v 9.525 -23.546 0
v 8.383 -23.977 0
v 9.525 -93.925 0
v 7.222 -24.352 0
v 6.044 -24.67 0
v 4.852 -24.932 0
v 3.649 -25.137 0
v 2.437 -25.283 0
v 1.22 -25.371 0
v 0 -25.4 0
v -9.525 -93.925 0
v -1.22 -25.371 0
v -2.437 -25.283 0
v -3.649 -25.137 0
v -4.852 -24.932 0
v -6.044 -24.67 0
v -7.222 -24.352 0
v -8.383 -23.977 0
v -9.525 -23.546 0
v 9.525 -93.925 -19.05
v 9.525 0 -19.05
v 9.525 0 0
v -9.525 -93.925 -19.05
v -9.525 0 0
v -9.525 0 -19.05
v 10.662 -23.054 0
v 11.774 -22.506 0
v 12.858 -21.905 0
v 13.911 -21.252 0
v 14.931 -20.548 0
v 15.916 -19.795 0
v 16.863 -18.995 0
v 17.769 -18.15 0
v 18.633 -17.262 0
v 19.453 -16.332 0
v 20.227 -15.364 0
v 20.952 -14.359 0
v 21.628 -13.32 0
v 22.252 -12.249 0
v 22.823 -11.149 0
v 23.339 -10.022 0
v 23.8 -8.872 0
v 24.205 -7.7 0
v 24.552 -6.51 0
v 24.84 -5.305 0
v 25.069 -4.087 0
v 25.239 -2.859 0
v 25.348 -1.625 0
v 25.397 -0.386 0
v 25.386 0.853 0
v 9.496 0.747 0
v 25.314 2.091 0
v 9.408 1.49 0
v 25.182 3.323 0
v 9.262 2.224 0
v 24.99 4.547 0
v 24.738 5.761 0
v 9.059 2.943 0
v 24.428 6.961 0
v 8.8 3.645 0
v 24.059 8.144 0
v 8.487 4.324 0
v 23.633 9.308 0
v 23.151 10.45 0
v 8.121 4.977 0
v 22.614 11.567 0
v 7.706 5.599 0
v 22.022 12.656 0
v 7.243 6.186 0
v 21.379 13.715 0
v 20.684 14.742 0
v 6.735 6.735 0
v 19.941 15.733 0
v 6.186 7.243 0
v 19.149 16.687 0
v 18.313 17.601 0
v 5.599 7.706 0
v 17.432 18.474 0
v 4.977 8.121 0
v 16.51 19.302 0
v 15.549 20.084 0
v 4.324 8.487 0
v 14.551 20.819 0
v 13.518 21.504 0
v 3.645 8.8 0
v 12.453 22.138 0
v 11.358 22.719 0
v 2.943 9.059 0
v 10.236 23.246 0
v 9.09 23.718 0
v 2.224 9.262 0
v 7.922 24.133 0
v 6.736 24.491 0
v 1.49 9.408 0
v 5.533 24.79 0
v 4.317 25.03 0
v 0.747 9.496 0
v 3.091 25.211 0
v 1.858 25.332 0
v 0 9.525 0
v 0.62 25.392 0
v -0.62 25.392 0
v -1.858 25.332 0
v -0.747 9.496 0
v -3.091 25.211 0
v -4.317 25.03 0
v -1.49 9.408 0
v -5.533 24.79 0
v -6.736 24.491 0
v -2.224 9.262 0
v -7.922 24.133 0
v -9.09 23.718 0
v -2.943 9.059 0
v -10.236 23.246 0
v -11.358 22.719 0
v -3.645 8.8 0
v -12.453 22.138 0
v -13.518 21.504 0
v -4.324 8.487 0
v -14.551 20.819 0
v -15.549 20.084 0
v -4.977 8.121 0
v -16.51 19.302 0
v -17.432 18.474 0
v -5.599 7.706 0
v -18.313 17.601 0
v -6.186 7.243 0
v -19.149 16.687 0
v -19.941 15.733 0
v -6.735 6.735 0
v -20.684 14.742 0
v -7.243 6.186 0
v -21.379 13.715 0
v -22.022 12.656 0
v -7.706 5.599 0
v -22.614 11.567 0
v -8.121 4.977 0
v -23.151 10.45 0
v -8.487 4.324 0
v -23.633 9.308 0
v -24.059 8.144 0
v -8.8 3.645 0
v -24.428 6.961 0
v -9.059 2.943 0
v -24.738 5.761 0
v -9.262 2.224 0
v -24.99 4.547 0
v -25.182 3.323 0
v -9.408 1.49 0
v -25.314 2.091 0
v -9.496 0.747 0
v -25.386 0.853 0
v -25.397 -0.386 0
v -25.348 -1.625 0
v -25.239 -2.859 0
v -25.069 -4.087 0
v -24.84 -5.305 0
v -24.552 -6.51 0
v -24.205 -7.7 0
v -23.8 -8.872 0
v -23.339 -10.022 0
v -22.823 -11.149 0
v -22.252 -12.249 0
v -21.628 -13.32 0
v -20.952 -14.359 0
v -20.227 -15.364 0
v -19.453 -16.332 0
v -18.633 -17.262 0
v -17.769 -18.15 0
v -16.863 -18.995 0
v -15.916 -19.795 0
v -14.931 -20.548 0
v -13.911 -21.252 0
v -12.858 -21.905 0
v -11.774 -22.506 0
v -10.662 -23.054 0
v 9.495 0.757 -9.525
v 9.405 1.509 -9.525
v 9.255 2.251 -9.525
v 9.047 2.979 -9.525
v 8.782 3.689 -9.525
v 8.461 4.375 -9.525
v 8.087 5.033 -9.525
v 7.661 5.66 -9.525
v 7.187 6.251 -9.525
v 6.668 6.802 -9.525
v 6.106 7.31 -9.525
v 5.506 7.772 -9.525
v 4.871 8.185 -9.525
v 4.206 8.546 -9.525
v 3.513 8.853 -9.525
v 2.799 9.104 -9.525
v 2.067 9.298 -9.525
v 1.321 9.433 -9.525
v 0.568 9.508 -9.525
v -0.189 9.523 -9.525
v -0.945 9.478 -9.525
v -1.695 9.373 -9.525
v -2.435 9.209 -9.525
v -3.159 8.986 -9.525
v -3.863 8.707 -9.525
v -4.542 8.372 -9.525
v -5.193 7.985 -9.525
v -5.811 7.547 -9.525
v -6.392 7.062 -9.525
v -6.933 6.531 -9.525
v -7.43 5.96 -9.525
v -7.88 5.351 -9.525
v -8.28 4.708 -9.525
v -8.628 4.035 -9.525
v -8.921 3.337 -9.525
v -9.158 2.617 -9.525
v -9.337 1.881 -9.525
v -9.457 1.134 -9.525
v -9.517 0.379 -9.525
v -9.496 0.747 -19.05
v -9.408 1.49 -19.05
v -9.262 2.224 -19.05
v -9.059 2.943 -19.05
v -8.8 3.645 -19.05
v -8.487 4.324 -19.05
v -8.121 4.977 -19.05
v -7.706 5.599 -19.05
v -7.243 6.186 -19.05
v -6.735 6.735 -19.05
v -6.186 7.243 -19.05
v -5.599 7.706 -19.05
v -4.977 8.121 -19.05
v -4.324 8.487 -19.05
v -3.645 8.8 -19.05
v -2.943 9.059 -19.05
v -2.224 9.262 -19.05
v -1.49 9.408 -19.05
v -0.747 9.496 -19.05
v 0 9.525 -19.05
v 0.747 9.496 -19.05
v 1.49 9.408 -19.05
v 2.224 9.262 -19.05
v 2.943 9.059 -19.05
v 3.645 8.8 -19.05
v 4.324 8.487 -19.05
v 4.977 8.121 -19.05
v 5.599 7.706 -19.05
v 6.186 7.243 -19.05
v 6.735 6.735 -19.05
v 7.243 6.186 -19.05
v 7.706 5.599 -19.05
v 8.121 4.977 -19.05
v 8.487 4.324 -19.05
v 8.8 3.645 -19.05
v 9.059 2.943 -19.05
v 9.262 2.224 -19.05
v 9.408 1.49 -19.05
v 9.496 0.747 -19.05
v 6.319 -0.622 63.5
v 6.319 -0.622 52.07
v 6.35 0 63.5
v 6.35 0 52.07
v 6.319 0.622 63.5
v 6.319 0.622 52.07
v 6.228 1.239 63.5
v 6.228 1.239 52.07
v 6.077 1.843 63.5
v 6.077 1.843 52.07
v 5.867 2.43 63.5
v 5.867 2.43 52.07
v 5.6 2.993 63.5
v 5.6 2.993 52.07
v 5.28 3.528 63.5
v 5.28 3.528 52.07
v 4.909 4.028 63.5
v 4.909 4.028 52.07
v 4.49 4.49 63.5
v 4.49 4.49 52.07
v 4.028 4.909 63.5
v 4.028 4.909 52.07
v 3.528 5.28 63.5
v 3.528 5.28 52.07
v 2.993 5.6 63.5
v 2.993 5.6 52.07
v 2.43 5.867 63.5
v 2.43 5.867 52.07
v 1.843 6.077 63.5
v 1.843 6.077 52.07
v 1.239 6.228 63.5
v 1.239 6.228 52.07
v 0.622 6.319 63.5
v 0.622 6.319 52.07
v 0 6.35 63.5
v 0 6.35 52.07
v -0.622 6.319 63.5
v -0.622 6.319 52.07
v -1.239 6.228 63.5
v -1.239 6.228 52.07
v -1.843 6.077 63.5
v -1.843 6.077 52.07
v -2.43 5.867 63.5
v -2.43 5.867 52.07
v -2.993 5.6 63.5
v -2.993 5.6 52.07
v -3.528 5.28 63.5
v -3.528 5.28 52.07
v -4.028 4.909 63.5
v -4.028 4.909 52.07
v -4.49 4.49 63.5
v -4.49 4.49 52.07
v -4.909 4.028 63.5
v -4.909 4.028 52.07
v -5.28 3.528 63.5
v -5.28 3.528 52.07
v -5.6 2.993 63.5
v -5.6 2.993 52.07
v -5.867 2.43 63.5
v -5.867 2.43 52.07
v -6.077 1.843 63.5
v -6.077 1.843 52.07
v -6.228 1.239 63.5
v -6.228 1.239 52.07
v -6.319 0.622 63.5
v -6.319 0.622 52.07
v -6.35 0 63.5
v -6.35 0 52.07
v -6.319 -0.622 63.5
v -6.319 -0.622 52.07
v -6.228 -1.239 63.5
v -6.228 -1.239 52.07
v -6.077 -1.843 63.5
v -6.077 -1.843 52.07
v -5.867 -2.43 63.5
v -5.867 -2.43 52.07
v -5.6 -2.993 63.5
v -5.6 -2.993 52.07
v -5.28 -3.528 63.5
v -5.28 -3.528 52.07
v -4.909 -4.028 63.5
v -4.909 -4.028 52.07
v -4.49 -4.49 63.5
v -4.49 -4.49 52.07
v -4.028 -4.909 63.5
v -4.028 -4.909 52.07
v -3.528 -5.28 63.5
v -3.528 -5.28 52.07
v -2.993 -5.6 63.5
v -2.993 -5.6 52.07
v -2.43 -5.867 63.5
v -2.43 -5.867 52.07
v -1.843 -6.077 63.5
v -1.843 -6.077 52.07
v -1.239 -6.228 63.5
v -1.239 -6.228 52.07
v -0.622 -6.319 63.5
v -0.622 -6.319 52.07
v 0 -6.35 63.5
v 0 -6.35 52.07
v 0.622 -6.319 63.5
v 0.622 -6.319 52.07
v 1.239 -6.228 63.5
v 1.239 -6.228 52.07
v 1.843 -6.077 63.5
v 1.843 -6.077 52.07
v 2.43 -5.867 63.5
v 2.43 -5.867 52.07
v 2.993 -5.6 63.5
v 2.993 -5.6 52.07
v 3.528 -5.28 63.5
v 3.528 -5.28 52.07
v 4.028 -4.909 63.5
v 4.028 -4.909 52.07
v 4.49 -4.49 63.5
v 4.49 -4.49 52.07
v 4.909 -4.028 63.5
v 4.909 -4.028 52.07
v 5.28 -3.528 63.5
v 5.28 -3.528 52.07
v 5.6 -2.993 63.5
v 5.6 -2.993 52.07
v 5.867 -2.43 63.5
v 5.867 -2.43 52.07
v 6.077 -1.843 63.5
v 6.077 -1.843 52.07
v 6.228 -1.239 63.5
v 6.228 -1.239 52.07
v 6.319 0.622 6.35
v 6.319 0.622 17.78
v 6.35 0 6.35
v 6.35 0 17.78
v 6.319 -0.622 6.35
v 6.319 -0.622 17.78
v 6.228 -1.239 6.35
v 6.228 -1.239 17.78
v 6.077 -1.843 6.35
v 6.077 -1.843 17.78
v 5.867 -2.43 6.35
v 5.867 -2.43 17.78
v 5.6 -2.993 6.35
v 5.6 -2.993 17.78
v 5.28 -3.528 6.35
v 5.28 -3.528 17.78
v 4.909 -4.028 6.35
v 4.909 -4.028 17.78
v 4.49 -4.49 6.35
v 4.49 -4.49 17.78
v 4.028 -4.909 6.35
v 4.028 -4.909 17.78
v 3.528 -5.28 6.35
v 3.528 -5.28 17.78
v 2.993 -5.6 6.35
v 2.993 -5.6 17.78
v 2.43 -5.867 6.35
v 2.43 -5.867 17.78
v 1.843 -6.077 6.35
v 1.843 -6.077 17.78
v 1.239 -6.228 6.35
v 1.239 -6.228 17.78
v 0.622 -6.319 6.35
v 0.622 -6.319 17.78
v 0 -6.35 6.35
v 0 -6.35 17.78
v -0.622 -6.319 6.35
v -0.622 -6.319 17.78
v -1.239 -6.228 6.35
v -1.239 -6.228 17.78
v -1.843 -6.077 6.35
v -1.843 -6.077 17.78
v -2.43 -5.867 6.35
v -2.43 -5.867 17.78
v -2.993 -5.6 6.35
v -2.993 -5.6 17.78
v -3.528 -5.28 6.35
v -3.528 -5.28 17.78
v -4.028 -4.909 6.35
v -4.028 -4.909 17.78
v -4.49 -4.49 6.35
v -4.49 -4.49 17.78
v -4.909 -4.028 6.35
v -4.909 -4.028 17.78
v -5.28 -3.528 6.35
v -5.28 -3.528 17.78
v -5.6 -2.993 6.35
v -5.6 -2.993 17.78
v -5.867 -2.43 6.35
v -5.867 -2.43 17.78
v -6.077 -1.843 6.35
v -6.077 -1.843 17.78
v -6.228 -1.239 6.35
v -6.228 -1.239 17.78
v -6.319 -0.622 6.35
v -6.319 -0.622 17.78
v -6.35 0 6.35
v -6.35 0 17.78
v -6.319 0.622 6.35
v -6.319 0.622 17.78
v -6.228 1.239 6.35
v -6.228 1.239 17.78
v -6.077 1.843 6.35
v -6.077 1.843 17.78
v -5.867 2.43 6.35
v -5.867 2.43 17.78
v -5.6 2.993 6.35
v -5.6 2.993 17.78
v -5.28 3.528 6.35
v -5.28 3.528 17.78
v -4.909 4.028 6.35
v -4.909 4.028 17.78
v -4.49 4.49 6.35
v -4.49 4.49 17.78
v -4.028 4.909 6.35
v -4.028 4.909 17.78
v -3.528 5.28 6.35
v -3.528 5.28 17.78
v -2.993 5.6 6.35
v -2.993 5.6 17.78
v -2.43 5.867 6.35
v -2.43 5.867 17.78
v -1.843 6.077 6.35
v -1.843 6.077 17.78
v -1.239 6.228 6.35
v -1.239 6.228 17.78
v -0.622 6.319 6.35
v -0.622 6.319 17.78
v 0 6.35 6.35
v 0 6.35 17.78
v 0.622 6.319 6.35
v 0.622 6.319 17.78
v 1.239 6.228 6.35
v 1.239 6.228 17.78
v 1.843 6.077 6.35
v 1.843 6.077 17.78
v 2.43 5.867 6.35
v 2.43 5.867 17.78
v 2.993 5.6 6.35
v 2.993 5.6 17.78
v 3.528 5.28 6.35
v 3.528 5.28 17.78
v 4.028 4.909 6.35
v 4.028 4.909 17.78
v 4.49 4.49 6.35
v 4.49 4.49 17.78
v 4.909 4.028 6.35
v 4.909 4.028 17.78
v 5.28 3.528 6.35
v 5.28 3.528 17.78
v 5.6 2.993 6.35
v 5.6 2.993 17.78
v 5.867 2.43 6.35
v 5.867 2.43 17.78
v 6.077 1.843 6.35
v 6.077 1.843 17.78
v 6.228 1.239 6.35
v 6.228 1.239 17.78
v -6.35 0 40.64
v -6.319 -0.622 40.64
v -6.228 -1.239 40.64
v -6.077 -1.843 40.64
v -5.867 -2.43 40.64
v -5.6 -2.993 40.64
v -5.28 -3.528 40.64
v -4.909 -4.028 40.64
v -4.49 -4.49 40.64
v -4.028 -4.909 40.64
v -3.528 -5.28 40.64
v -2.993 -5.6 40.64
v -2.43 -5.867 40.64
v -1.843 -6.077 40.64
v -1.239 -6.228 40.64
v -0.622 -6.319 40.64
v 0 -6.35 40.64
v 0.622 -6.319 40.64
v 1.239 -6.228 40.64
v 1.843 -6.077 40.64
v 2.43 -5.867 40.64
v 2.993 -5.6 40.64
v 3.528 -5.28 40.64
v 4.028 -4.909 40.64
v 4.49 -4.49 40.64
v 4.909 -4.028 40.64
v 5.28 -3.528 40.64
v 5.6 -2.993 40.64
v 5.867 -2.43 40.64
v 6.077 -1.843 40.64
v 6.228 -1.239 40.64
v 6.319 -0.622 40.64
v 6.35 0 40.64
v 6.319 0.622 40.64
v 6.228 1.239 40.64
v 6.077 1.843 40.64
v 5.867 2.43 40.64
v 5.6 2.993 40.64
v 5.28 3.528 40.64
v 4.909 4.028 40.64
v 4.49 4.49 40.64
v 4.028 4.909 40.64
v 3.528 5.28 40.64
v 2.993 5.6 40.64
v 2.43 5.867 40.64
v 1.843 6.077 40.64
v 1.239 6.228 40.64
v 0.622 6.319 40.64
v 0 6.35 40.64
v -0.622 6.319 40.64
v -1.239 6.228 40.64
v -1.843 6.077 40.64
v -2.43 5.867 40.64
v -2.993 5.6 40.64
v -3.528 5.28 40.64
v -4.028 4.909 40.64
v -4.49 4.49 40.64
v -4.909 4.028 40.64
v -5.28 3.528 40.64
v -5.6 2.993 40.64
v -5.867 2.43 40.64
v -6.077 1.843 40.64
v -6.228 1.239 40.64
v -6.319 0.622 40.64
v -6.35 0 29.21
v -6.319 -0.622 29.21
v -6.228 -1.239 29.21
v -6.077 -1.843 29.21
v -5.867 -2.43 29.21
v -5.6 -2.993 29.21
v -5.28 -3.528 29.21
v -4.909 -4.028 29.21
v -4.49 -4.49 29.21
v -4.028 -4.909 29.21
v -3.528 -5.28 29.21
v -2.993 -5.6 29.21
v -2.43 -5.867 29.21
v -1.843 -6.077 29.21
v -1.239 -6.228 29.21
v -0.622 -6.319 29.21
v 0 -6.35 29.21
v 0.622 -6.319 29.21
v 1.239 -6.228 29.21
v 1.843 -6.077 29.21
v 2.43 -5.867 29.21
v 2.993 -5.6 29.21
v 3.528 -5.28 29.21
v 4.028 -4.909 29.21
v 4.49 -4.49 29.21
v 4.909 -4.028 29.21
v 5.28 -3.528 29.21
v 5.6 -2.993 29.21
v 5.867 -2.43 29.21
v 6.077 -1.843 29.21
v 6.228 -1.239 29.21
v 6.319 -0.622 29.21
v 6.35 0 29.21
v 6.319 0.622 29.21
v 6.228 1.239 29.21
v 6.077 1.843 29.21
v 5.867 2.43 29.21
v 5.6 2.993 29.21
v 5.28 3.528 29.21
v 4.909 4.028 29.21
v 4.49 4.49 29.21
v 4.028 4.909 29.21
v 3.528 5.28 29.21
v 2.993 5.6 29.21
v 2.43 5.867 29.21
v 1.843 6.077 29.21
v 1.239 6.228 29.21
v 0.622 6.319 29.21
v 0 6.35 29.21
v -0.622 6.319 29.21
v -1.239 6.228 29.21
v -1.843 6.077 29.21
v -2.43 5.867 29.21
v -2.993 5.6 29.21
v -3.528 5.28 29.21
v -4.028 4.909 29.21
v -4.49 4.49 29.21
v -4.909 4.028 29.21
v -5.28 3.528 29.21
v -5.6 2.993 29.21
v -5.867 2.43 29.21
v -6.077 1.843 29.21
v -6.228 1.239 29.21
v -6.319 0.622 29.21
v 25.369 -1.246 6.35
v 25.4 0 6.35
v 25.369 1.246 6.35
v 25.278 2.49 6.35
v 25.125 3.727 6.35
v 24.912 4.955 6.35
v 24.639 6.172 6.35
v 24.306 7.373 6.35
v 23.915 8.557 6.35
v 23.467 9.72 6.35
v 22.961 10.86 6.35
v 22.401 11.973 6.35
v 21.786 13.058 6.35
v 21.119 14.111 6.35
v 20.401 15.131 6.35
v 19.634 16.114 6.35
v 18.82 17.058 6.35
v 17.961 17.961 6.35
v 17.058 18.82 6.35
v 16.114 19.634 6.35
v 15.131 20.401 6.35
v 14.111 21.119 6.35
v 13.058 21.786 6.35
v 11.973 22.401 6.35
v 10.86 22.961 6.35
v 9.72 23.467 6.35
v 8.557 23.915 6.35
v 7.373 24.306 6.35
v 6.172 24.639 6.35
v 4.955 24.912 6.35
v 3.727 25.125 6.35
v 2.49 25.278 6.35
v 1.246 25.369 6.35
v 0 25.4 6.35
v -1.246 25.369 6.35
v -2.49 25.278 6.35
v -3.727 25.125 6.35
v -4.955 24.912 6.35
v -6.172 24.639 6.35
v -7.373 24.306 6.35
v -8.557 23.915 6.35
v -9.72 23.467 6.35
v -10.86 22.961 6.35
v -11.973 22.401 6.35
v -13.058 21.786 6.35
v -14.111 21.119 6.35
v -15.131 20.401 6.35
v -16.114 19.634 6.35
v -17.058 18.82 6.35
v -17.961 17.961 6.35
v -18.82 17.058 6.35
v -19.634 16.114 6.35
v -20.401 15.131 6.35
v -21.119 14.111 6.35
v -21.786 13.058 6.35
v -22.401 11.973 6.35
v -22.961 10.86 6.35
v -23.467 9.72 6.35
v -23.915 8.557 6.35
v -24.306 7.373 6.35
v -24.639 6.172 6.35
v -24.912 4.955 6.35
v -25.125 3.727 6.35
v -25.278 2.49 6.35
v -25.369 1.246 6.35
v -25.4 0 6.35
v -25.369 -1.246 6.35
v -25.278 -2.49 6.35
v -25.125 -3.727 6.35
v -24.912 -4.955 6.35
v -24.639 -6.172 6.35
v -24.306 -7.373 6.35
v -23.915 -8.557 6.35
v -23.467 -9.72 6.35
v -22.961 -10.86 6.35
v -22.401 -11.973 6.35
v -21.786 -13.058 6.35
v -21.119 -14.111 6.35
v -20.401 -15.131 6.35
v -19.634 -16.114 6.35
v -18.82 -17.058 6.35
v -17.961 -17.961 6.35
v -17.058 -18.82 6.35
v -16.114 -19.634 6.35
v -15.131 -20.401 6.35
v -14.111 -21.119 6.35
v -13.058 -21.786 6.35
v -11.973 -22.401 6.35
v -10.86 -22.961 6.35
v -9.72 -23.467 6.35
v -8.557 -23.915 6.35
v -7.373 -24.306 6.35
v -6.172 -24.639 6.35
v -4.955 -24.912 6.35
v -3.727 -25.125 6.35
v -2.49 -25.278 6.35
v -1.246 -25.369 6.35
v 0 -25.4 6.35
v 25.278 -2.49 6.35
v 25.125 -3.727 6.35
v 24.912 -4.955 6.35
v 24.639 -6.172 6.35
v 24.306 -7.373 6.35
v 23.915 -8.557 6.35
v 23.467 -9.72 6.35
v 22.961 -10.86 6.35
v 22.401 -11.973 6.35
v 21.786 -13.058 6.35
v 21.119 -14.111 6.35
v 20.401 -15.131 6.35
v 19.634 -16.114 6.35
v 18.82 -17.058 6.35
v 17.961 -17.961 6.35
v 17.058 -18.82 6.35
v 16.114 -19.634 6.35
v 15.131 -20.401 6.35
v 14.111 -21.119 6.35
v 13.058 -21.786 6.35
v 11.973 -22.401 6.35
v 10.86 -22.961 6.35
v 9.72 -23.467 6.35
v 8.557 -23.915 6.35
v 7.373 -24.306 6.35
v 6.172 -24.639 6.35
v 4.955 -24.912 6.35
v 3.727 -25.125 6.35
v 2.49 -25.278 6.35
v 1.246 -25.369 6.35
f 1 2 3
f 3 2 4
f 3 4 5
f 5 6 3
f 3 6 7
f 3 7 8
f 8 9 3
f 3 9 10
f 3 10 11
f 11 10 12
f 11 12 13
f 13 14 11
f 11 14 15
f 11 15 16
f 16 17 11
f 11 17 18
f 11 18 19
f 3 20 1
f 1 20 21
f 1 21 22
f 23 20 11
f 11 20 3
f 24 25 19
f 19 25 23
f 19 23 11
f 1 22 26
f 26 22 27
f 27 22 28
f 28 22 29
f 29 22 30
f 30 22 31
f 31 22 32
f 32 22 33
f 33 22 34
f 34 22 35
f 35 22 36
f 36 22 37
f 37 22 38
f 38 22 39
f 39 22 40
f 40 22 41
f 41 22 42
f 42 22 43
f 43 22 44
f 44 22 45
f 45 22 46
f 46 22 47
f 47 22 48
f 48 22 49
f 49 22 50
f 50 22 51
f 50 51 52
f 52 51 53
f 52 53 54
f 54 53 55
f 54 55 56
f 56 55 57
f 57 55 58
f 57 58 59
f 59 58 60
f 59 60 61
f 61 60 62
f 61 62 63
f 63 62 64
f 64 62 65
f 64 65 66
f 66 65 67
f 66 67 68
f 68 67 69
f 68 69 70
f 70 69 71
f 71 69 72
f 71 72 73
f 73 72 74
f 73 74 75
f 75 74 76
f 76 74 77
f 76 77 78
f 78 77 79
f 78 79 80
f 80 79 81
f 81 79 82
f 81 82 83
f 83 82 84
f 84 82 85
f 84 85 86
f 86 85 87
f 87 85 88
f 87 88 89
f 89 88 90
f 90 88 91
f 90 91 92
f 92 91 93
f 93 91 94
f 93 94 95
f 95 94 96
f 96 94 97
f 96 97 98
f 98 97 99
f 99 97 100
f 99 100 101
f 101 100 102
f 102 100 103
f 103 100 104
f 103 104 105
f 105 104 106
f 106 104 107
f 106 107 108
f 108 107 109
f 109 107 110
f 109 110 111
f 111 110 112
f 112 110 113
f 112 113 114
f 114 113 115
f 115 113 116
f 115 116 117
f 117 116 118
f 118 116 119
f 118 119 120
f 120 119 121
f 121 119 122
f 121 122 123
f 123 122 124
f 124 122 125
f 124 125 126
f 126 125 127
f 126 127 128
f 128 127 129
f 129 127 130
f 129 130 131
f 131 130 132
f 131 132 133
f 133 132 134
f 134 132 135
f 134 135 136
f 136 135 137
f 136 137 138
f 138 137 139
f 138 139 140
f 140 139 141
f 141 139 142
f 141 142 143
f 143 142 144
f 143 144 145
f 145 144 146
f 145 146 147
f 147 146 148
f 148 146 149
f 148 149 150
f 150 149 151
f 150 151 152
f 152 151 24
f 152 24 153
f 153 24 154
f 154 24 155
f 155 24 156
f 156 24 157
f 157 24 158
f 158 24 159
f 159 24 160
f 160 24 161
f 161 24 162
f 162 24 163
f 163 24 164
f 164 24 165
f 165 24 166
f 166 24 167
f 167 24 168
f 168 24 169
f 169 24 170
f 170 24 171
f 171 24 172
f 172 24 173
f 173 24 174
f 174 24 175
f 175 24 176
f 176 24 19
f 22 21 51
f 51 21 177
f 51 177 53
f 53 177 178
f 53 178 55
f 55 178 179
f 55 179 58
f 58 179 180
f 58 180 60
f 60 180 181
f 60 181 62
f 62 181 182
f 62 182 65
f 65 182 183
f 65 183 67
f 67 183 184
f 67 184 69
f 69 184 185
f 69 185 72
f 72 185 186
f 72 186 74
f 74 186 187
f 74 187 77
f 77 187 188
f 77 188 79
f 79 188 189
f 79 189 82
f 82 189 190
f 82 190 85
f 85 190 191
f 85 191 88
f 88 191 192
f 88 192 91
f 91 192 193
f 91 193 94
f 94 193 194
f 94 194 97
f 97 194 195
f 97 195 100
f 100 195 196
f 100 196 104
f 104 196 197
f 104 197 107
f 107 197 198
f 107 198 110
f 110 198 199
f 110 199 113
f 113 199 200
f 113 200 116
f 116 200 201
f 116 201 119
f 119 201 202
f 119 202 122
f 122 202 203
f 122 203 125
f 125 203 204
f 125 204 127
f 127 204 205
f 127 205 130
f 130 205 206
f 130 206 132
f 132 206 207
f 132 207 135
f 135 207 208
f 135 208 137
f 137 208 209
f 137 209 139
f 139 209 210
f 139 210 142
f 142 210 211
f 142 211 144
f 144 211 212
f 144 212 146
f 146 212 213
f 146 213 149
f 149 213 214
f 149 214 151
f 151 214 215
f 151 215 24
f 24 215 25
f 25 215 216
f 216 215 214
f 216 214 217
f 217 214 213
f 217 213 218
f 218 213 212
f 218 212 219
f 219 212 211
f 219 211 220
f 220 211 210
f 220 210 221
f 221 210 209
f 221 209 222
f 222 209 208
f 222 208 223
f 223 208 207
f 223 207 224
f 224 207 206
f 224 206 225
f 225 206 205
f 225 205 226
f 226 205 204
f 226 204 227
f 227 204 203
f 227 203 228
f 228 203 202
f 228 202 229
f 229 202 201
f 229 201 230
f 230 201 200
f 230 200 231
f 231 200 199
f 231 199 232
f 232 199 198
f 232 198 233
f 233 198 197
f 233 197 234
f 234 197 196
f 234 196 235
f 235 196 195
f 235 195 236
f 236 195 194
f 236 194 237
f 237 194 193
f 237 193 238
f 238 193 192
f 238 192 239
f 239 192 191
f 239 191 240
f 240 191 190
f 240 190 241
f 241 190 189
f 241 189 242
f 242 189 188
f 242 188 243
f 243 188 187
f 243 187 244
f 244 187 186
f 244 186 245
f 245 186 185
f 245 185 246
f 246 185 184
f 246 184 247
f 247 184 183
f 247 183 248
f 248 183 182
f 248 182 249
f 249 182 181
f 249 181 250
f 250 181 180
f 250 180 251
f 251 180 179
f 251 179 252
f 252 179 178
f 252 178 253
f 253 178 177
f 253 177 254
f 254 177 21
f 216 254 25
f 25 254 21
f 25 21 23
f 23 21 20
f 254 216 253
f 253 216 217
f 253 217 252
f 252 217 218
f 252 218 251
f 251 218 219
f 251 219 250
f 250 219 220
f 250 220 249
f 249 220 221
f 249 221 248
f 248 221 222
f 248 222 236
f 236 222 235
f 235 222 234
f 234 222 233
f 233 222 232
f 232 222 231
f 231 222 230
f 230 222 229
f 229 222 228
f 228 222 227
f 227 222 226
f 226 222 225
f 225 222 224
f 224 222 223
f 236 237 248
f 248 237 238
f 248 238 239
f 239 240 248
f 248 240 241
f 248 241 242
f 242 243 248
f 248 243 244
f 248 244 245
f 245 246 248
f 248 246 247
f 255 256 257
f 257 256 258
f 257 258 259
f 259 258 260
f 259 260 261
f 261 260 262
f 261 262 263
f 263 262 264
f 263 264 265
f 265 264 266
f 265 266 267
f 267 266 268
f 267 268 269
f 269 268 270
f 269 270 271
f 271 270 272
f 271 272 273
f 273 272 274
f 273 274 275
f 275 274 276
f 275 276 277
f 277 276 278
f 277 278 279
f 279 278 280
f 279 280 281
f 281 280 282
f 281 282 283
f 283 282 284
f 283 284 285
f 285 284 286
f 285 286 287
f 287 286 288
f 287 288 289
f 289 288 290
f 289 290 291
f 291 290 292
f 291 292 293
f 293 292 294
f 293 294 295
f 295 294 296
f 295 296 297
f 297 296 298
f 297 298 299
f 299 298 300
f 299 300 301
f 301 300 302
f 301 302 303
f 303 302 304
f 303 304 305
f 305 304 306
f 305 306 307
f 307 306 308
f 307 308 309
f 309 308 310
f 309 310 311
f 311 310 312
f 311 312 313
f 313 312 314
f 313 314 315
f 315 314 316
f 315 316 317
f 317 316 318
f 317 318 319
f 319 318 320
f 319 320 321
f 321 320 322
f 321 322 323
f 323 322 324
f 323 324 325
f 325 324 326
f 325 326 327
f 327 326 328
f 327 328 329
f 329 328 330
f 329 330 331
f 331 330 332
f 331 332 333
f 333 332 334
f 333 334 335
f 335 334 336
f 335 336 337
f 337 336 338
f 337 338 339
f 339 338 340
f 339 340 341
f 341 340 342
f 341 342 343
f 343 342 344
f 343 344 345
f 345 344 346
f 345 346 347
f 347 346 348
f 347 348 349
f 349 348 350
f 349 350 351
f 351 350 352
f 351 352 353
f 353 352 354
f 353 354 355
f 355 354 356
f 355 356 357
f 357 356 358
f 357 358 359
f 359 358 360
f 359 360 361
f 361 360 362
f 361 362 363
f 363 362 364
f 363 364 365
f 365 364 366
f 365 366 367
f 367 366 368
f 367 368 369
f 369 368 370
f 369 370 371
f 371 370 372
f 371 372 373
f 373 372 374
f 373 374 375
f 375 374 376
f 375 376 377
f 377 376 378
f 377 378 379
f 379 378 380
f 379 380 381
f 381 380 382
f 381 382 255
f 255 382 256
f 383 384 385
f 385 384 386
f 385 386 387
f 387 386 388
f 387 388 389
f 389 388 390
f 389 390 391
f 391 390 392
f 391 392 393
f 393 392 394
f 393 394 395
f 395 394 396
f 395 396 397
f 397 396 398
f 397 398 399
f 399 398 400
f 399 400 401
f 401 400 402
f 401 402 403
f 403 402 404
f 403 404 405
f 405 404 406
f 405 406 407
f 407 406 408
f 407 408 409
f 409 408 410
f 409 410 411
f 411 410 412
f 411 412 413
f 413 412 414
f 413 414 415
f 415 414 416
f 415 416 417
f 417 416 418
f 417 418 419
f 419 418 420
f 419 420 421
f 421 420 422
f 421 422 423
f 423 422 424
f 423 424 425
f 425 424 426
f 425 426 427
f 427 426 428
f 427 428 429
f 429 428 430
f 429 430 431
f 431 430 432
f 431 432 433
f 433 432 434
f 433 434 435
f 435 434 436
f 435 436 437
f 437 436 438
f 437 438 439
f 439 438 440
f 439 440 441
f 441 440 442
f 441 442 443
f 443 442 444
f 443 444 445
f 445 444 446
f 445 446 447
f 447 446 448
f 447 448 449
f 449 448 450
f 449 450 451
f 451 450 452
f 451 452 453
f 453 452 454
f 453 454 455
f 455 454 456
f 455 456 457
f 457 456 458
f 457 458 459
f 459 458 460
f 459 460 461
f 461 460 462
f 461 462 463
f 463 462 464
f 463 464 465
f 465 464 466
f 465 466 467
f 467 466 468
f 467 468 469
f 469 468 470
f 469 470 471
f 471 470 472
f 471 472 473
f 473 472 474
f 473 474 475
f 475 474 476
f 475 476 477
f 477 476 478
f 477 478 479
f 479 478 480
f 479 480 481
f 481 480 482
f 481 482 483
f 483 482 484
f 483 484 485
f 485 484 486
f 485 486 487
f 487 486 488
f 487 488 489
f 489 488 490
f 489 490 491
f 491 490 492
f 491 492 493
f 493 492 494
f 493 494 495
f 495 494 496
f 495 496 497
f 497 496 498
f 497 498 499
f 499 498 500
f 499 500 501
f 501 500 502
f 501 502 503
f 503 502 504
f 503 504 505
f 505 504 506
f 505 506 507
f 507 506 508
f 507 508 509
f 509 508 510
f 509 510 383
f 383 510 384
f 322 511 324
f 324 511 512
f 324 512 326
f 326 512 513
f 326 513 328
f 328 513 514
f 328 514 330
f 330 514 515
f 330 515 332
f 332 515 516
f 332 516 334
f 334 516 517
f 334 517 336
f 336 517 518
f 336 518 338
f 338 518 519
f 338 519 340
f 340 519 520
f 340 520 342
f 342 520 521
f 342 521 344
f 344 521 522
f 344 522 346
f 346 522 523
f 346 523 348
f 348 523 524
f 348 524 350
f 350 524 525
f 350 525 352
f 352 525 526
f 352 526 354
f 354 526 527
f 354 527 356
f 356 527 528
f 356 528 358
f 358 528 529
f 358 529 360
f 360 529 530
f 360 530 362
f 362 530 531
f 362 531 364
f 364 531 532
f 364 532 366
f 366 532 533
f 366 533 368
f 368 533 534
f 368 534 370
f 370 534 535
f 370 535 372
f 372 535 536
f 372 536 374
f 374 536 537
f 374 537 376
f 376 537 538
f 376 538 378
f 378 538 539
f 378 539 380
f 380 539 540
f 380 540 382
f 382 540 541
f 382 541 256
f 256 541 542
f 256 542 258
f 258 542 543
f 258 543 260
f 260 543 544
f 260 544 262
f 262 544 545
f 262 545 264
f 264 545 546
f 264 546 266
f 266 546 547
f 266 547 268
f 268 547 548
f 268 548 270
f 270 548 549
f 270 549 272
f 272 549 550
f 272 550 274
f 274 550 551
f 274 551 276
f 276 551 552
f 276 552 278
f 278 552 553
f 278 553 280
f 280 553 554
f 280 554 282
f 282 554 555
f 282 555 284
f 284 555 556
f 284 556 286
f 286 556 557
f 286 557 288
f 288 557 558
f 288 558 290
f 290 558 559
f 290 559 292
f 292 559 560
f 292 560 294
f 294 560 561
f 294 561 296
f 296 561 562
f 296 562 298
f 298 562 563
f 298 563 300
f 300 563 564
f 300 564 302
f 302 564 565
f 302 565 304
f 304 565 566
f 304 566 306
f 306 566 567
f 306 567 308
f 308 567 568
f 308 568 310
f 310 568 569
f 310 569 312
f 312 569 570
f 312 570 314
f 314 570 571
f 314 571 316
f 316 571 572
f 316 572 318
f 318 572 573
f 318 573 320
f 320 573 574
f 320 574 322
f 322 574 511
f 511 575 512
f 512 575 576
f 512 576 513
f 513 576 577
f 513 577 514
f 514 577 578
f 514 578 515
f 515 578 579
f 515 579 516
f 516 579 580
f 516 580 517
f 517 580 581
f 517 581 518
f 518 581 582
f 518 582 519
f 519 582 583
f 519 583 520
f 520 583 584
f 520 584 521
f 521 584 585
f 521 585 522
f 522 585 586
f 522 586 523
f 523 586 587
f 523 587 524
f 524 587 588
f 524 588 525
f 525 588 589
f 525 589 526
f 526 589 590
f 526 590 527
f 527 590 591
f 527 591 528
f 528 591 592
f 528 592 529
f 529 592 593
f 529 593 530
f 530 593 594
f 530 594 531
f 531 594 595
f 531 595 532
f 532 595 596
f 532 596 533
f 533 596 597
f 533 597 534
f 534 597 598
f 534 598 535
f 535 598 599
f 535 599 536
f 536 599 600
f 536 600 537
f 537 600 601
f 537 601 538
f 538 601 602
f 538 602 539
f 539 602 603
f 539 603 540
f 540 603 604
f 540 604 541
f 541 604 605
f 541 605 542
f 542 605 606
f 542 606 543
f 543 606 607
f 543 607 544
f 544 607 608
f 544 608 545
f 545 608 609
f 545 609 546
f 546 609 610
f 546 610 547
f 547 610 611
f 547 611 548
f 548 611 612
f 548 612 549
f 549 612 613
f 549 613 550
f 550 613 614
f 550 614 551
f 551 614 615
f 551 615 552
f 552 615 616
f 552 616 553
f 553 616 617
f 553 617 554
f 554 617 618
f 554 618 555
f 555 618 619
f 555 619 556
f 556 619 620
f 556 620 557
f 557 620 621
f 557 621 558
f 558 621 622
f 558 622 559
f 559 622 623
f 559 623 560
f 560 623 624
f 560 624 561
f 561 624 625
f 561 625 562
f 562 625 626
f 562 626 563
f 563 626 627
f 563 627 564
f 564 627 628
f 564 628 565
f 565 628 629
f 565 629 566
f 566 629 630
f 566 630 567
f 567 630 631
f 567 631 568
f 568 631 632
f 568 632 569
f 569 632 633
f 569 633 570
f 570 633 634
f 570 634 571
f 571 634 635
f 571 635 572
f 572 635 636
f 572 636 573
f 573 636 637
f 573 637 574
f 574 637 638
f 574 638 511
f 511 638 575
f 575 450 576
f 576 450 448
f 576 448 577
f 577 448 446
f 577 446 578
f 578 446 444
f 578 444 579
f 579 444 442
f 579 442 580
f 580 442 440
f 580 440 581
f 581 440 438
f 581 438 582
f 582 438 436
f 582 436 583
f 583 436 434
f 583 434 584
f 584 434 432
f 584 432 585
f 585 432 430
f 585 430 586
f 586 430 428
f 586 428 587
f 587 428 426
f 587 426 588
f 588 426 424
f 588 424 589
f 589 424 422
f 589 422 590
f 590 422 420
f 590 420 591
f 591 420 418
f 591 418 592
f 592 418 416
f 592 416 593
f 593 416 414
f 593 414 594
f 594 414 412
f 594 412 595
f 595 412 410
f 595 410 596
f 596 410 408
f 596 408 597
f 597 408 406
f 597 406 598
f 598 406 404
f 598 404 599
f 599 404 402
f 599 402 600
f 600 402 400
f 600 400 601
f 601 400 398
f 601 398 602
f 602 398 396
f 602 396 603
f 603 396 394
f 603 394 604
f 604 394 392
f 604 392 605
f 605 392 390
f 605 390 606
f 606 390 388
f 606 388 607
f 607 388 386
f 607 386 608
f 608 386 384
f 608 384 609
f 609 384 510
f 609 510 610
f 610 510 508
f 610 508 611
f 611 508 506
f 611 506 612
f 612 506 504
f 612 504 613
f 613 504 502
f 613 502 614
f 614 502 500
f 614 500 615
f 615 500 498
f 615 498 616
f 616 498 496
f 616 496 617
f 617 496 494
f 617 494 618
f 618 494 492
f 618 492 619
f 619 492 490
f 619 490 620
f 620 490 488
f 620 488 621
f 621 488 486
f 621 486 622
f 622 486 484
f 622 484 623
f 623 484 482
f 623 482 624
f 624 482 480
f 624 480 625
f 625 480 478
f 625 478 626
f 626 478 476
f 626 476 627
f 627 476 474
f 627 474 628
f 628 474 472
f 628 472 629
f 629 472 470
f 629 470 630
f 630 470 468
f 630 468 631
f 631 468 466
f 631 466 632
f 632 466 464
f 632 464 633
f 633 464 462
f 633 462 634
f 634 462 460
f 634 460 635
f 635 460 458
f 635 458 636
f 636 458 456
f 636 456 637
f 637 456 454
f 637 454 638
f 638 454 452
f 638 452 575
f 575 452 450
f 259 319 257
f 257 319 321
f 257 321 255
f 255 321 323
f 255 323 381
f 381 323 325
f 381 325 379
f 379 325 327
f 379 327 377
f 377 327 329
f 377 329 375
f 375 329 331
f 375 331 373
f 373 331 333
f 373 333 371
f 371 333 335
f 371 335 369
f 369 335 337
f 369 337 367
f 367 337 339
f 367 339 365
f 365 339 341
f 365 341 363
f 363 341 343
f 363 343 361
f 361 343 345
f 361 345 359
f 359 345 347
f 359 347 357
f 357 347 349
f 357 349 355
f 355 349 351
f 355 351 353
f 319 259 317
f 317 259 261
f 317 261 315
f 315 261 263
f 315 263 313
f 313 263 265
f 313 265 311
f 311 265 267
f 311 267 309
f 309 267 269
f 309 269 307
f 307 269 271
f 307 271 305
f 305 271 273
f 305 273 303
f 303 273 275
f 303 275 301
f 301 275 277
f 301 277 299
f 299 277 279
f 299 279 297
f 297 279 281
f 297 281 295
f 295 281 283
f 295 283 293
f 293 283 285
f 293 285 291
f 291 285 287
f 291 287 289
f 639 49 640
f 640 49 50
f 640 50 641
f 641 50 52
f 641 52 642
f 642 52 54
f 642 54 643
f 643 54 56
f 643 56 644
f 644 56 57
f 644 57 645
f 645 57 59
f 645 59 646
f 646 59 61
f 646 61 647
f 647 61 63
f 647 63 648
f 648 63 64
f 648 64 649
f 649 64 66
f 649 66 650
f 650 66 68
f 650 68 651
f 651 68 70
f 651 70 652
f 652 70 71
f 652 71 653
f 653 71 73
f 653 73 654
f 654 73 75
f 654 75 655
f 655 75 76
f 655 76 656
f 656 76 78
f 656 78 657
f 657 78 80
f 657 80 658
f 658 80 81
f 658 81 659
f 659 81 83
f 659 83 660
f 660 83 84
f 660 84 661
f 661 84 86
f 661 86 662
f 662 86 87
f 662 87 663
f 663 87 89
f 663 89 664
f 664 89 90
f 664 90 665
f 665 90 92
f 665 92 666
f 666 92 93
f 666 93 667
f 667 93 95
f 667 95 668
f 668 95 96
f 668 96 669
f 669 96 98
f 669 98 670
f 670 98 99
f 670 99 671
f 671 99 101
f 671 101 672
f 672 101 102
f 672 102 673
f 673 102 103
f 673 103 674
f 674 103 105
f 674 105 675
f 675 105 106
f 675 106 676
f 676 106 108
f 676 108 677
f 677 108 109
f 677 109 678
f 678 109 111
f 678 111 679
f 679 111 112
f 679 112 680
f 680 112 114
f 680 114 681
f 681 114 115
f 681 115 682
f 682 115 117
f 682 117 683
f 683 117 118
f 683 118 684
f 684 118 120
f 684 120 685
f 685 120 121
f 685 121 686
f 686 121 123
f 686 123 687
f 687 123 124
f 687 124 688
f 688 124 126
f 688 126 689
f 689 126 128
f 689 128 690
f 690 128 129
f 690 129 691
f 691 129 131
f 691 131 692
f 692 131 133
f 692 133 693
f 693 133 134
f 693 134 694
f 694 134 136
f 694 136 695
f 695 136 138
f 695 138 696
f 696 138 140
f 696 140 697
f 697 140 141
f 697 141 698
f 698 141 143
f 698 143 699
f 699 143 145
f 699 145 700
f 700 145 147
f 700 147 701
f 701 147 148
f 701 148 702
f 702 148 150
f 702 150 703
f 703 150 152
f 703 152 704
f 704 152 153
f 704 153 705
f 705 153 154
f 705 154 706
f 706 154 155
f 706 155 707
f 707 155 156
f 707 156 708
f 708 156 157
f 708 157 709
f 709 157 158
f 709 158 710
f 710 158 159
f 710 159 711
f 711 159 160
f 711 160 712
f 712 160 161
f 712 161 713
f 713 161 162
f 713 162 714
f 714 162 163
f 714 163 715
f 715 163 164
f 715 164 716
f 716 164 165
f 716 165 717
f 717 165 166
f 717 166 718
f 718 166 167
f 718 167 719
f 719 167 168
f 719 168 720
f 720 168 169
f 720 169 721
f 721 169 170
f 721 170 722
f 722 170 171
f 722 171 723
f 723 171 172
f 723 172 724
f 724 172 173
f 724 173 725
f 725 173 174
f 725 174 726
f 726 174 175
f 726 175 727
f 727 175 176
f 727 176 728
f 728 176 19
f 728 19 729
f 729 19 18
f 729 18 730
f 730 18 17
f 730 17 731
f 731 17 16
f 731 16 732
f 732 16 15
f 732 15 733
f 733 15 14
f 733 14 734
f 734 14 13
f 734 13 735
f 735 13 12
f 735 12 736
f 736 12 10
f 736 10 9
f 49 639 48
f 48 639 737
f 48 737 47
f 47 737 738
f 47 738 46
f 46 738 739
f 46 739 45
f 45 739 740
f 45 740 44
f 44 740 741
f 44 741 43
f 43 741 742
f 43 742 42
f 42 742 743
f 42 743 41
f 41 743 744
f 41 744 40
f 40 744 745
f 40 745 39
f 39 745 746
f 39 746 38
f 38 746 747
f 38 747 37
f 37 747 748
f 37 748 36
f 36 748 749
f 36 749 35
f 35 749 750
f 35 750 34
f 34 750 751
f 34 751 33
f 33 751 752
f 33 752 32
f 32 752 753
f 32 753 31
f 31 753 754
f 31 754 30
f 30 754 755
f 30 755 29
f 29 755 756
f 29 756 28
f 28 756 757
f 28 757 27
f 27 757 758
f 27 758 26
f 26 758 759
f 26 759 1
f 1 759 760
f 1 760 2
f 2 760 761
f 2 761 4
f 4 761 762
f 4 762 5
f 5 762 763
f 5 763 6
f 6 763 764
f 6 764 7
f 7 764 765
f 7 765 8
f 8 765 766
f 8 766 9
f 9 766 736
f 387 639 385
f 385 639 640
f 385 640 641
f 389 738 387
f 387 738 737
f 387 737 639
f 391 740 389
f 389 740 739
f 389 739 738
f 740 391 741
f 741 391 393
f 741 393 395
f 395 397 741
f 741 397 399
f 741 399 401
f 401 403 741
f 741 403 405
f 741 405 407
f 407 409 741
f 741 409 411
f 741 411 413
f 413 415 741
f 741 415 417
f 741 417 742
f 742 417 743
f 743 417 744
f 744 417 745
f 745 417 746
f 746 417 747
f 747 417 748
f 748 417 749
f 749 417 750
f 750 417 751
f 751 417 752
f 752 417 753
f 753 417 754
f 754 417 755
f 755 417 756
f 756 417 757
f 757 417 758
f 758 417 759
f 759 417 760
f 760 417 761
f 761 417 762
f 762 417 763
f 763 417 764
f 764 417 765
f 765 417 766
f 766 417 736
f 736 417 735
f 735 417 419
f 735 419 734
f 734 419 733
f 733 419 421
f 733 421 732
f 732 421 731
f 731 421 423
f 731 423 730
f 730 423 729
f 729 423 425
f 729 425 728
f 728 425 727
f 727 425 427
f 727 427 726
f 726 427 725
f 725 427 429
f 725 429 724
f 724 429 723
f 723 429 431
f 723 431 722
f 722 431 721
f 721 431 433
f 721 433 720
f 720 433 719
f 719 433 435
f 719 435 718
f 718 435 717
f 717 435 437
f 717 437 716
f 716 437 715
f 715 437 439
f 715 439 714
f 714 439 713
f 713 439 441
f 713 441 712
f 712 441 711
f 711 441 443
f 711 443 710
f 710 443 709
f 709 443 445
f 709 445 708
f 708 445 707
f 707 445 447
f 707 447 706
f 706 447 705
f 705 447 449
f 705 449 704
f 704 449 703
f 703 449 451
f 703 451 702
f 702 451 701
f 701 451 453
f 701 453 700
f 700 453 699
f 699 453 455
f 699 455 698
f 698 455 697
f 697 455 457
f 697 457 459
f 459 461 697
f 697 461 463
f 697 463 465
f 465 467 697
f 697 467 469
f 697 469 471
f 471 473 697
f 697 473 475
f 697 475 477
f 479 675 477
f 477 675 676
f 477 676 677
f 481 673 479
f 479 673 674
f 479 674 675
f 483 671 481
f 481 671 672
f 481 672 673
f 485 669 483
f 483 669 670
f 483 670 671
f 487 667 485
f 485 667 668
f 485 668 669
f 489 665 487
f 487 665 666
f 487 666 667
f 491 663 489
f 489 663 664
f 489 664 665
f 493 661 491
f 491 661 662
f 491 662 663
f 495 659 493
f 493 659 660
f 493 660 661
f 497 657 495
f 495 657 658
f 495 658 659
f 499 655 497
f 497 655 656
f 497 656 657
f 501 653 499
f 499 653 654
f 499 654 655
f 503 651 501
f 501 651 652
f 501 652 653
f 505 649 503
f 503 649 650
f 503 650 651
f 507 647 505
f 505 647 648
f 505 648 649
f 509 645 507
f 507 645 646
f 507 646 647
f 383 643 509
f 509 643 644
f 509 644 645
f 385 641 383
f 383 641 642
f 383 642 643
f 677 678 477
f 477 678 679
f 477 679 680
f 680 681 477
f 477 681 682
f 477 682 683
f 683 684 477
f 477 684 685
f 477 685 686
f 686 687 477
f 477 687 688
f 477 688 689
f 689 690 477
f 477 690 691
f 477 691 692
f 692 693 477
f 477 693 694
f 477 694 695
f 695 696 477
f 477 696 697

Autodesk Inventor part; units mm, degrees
ref_plane "YZ Plane" through (0, 0, 0) normal (1, 0, 0) x (0, 1, 0)
ref_plane "XZ Plane" through (0, 0, 0) normal (0, 1, 0) x (-1, 0, 0)
ref_plane "XY Plane" through (0, 0, 0) normal (0, 0, 1) x (1, 0, 0)
sketch "Sketch1" plane through (0, 0, 0) normal (0, 0, 1) x (1, 0, 0)
  circle A0 centre (0, 0) radius 25.4
  dimension "d0" = 50.8
extrude "Extrusion1" add sketch "Sketch1" along normal blind 6.35
sketch "Sketch2" plane through (0, 0, 6.35) normal (0, 0, 1) x (1, 0, 0)
  circle A0 centre (0, 0) radius 6.35
  dimension "d3" = 12.7
extrude "Extrusion2" add sketch "Sketch2" along normal blind 57.15
sketch "Sketch3" plane through (0, 0, 0) normal (0, 0, -1) x (-1, 0, 0)
  circle A0 centre (0, 0) radius 6.35 projected
  circle A1 centre (0, 0) radius 9.525
  dimension "d6" = 19.05
extrude "Extrusion3" add sketch "Sketch3" along normal blind 19.05
sketch "Sketch4" plane through (0, 0, -19.05) normal (0, 0, -1) x (-1, 0, 0)
  circle A0 centre (0, 0) radius 9.525 projected
  circle A1 centre (0, 0) radius 9.525 construction
  line L0 (-9.525, 0) -> (9.525, 0) construction
  line L1 (-9.525, 0) -> (9.525, 0)
  line L2 (9.525, 0) -> (9.525, -93.9249)
  line L3 (9.525, -93.9249) -> (-9.525, -93.9249)
  line L4 (-9.525, -93.9249) -> (-9.525, 0)
  dimension "d9" = 19.05
  dimension "d10" = 93.9249
extrude "Extrusion4" add sketch "Sketch4" against normal blind 19.05 contours L2 L3 L4 A0
extrude "Extrusion6" add sketch "Sketch3" along normal blind 19.05 contours A0
equation "\"d0\" = OG_gearDiameter"
equation "\"d1\" = OG_gearThickness"
equation "\"d3\" = OG_shaftDiameter"
equation "\"d4\" = OG_shaftLength"
equation "\"d6\" = LE_baseDiameter"
equation "\"d7\" = LE_thickness"
equation "\"d9\" = LE_thickness"
equation "\"d10\" = LE_maxLength"
equation "\"d11\" = LE_thickness"
equation "\"d15\" = LE_thickness + LE_offsetAboveOuterGear"
equation "\"Wheel_Related_W_\" = 0"
equation "\"W_innerDiameter\" = 254"
equation "\"W_innerDepth\" = 50.8"
equation "\"W_wallThickness\" = 6.35"
equation "\"W_holesClearance\" = 0.254"
equation "\"W_outerGearHoleDiameter\" = 13.208"
equation "\"W_innerGearHoleDiameter\" = 38.608"
equation "\"TempSpotReserved7\" = 0"
equation "\"TempSpotReserved8\" = 0"
equation "\"TempSpotReserved9\" = 0"
equation "\"TempSpotReserved10\" = 0"
equation "\"TempSpotReserved11\" = 0"
equation "\"TempSpotReserved12\" = 0"
equation "\"TempSpotReserved13\" = 0"
equation "\"TempSpotReserved14\" = 0"
equation "\"TempSpotReserved15\" = 0"
equation "\"TempSpotReserved16\" = 0"
equation "\"TempSpotReserved17\" = 0"
equation "\"TempSpotReserved18\" = 0"
equation "\"TempSpotReserved19\" = 0"
equation "\"TempSpotReserved20\" = 0"
equation "\"Inner_Gear_Related_IG_\" = 0"
equation "\"IG_shaftDiameter\" = 25.4"
equation "\"IG_gearDiameter\" = 127"
equation "\"IG_shaftLength\" = 127"
equation "\"IG_gearThickness\" = 6.35"
equation "\"TempSpotReserved25\" = 0"
equation "\"TempSpotReserved26\" = 0"
equation "\"TempSpotReserved27\" = 0"
equation "\"TempSpotReserved28\" = 0"
equation "\"TempSpotReserved29\" = 0"
equation "\"TempSpotReserved30\" = 0"
equation "\"TempSpotReserved31\" = 0"
equation "\"TempSpotReserved32\" = 0"
equation "\"TempSpotReserved33\" = 0"
equation "\"TempSpotReserved34\" = 0"
equation "\"TempSpotReserved35\" = 0"
equation "\"TempSpotReserved36\" = 0"
equation "\"TempSpotReserved37\" = 0"
equation "\"TempSpotReserved38\" = 0"
equation "\"TempSpotReserved39\" = 0"
equation "\"TempSpotReserved40\" = 0"
equation "\"Outer_Gear_Related_OG_\" = 0"
equation "\"OG_distanceFromCenter\" = 88.9"
equation "\"OG_shaftDiameter\" = 12.7"
equation "\"OG_gearDiameter\" = 50.8"
equation "\"OG_shaftLength\" = 57.15"
equation "\"OG_gearThickness\" = 6.35"
equation "\"TempSpotReserved47\" = 0"
equation "\"TempSpotReserved48\" = 0"
equation "\"TempSpotReserved49\" = 0"
equation "\"TempSpotReserved50\" = 0"
equation "\"TempSpotReserved51\" = 0"
equation "\"TempSpotReserved52\" = 0"
equation "\"TempSpotReserved53\" = 0"
equation "\"TempSpotReserved54\" = 0"
equation "\"TempSpotReserved55\" = 0"
equation "\"TempSpotReserved56\" = 0"
equation "\"TempSpotReserved57\" = 0"
equation "\"TempSpotReserved58\" = 0"
equation "\"TempSpotReserved59\" = 0"
equation "\"TempSpotReserved60\" = 0"
equation "\"Leg_Extensions_Related_LE_\" = 0"
equation "\"LE_baseDiameter\" = 19.05"
equation "\"LE_maxLength\" = 93.92488"
equation "\"LE_thickness\" = 19.05"
equation "\"IG_ratioToOuterGear\" = 2.5"
equation "\"B_bearingThickness\" = 6.35"
equation "\"TempSpotReserved43\" = 0"
equation "\"TempSpotReserved45\" = 0"
equation "\"Thisisatest\" = 25.4"
equation "\"TempSpotReserved46\" = 0"
equation "\"TempSpotReserved44\" = 0"
equation "\"LE_offsetAboveOuterGear\" = 0"
equation "\"Bearing_Related_B_\" = 0"
equation "\"TempSpotReserved42\" = 0"
properties part number "outerGear_2"
